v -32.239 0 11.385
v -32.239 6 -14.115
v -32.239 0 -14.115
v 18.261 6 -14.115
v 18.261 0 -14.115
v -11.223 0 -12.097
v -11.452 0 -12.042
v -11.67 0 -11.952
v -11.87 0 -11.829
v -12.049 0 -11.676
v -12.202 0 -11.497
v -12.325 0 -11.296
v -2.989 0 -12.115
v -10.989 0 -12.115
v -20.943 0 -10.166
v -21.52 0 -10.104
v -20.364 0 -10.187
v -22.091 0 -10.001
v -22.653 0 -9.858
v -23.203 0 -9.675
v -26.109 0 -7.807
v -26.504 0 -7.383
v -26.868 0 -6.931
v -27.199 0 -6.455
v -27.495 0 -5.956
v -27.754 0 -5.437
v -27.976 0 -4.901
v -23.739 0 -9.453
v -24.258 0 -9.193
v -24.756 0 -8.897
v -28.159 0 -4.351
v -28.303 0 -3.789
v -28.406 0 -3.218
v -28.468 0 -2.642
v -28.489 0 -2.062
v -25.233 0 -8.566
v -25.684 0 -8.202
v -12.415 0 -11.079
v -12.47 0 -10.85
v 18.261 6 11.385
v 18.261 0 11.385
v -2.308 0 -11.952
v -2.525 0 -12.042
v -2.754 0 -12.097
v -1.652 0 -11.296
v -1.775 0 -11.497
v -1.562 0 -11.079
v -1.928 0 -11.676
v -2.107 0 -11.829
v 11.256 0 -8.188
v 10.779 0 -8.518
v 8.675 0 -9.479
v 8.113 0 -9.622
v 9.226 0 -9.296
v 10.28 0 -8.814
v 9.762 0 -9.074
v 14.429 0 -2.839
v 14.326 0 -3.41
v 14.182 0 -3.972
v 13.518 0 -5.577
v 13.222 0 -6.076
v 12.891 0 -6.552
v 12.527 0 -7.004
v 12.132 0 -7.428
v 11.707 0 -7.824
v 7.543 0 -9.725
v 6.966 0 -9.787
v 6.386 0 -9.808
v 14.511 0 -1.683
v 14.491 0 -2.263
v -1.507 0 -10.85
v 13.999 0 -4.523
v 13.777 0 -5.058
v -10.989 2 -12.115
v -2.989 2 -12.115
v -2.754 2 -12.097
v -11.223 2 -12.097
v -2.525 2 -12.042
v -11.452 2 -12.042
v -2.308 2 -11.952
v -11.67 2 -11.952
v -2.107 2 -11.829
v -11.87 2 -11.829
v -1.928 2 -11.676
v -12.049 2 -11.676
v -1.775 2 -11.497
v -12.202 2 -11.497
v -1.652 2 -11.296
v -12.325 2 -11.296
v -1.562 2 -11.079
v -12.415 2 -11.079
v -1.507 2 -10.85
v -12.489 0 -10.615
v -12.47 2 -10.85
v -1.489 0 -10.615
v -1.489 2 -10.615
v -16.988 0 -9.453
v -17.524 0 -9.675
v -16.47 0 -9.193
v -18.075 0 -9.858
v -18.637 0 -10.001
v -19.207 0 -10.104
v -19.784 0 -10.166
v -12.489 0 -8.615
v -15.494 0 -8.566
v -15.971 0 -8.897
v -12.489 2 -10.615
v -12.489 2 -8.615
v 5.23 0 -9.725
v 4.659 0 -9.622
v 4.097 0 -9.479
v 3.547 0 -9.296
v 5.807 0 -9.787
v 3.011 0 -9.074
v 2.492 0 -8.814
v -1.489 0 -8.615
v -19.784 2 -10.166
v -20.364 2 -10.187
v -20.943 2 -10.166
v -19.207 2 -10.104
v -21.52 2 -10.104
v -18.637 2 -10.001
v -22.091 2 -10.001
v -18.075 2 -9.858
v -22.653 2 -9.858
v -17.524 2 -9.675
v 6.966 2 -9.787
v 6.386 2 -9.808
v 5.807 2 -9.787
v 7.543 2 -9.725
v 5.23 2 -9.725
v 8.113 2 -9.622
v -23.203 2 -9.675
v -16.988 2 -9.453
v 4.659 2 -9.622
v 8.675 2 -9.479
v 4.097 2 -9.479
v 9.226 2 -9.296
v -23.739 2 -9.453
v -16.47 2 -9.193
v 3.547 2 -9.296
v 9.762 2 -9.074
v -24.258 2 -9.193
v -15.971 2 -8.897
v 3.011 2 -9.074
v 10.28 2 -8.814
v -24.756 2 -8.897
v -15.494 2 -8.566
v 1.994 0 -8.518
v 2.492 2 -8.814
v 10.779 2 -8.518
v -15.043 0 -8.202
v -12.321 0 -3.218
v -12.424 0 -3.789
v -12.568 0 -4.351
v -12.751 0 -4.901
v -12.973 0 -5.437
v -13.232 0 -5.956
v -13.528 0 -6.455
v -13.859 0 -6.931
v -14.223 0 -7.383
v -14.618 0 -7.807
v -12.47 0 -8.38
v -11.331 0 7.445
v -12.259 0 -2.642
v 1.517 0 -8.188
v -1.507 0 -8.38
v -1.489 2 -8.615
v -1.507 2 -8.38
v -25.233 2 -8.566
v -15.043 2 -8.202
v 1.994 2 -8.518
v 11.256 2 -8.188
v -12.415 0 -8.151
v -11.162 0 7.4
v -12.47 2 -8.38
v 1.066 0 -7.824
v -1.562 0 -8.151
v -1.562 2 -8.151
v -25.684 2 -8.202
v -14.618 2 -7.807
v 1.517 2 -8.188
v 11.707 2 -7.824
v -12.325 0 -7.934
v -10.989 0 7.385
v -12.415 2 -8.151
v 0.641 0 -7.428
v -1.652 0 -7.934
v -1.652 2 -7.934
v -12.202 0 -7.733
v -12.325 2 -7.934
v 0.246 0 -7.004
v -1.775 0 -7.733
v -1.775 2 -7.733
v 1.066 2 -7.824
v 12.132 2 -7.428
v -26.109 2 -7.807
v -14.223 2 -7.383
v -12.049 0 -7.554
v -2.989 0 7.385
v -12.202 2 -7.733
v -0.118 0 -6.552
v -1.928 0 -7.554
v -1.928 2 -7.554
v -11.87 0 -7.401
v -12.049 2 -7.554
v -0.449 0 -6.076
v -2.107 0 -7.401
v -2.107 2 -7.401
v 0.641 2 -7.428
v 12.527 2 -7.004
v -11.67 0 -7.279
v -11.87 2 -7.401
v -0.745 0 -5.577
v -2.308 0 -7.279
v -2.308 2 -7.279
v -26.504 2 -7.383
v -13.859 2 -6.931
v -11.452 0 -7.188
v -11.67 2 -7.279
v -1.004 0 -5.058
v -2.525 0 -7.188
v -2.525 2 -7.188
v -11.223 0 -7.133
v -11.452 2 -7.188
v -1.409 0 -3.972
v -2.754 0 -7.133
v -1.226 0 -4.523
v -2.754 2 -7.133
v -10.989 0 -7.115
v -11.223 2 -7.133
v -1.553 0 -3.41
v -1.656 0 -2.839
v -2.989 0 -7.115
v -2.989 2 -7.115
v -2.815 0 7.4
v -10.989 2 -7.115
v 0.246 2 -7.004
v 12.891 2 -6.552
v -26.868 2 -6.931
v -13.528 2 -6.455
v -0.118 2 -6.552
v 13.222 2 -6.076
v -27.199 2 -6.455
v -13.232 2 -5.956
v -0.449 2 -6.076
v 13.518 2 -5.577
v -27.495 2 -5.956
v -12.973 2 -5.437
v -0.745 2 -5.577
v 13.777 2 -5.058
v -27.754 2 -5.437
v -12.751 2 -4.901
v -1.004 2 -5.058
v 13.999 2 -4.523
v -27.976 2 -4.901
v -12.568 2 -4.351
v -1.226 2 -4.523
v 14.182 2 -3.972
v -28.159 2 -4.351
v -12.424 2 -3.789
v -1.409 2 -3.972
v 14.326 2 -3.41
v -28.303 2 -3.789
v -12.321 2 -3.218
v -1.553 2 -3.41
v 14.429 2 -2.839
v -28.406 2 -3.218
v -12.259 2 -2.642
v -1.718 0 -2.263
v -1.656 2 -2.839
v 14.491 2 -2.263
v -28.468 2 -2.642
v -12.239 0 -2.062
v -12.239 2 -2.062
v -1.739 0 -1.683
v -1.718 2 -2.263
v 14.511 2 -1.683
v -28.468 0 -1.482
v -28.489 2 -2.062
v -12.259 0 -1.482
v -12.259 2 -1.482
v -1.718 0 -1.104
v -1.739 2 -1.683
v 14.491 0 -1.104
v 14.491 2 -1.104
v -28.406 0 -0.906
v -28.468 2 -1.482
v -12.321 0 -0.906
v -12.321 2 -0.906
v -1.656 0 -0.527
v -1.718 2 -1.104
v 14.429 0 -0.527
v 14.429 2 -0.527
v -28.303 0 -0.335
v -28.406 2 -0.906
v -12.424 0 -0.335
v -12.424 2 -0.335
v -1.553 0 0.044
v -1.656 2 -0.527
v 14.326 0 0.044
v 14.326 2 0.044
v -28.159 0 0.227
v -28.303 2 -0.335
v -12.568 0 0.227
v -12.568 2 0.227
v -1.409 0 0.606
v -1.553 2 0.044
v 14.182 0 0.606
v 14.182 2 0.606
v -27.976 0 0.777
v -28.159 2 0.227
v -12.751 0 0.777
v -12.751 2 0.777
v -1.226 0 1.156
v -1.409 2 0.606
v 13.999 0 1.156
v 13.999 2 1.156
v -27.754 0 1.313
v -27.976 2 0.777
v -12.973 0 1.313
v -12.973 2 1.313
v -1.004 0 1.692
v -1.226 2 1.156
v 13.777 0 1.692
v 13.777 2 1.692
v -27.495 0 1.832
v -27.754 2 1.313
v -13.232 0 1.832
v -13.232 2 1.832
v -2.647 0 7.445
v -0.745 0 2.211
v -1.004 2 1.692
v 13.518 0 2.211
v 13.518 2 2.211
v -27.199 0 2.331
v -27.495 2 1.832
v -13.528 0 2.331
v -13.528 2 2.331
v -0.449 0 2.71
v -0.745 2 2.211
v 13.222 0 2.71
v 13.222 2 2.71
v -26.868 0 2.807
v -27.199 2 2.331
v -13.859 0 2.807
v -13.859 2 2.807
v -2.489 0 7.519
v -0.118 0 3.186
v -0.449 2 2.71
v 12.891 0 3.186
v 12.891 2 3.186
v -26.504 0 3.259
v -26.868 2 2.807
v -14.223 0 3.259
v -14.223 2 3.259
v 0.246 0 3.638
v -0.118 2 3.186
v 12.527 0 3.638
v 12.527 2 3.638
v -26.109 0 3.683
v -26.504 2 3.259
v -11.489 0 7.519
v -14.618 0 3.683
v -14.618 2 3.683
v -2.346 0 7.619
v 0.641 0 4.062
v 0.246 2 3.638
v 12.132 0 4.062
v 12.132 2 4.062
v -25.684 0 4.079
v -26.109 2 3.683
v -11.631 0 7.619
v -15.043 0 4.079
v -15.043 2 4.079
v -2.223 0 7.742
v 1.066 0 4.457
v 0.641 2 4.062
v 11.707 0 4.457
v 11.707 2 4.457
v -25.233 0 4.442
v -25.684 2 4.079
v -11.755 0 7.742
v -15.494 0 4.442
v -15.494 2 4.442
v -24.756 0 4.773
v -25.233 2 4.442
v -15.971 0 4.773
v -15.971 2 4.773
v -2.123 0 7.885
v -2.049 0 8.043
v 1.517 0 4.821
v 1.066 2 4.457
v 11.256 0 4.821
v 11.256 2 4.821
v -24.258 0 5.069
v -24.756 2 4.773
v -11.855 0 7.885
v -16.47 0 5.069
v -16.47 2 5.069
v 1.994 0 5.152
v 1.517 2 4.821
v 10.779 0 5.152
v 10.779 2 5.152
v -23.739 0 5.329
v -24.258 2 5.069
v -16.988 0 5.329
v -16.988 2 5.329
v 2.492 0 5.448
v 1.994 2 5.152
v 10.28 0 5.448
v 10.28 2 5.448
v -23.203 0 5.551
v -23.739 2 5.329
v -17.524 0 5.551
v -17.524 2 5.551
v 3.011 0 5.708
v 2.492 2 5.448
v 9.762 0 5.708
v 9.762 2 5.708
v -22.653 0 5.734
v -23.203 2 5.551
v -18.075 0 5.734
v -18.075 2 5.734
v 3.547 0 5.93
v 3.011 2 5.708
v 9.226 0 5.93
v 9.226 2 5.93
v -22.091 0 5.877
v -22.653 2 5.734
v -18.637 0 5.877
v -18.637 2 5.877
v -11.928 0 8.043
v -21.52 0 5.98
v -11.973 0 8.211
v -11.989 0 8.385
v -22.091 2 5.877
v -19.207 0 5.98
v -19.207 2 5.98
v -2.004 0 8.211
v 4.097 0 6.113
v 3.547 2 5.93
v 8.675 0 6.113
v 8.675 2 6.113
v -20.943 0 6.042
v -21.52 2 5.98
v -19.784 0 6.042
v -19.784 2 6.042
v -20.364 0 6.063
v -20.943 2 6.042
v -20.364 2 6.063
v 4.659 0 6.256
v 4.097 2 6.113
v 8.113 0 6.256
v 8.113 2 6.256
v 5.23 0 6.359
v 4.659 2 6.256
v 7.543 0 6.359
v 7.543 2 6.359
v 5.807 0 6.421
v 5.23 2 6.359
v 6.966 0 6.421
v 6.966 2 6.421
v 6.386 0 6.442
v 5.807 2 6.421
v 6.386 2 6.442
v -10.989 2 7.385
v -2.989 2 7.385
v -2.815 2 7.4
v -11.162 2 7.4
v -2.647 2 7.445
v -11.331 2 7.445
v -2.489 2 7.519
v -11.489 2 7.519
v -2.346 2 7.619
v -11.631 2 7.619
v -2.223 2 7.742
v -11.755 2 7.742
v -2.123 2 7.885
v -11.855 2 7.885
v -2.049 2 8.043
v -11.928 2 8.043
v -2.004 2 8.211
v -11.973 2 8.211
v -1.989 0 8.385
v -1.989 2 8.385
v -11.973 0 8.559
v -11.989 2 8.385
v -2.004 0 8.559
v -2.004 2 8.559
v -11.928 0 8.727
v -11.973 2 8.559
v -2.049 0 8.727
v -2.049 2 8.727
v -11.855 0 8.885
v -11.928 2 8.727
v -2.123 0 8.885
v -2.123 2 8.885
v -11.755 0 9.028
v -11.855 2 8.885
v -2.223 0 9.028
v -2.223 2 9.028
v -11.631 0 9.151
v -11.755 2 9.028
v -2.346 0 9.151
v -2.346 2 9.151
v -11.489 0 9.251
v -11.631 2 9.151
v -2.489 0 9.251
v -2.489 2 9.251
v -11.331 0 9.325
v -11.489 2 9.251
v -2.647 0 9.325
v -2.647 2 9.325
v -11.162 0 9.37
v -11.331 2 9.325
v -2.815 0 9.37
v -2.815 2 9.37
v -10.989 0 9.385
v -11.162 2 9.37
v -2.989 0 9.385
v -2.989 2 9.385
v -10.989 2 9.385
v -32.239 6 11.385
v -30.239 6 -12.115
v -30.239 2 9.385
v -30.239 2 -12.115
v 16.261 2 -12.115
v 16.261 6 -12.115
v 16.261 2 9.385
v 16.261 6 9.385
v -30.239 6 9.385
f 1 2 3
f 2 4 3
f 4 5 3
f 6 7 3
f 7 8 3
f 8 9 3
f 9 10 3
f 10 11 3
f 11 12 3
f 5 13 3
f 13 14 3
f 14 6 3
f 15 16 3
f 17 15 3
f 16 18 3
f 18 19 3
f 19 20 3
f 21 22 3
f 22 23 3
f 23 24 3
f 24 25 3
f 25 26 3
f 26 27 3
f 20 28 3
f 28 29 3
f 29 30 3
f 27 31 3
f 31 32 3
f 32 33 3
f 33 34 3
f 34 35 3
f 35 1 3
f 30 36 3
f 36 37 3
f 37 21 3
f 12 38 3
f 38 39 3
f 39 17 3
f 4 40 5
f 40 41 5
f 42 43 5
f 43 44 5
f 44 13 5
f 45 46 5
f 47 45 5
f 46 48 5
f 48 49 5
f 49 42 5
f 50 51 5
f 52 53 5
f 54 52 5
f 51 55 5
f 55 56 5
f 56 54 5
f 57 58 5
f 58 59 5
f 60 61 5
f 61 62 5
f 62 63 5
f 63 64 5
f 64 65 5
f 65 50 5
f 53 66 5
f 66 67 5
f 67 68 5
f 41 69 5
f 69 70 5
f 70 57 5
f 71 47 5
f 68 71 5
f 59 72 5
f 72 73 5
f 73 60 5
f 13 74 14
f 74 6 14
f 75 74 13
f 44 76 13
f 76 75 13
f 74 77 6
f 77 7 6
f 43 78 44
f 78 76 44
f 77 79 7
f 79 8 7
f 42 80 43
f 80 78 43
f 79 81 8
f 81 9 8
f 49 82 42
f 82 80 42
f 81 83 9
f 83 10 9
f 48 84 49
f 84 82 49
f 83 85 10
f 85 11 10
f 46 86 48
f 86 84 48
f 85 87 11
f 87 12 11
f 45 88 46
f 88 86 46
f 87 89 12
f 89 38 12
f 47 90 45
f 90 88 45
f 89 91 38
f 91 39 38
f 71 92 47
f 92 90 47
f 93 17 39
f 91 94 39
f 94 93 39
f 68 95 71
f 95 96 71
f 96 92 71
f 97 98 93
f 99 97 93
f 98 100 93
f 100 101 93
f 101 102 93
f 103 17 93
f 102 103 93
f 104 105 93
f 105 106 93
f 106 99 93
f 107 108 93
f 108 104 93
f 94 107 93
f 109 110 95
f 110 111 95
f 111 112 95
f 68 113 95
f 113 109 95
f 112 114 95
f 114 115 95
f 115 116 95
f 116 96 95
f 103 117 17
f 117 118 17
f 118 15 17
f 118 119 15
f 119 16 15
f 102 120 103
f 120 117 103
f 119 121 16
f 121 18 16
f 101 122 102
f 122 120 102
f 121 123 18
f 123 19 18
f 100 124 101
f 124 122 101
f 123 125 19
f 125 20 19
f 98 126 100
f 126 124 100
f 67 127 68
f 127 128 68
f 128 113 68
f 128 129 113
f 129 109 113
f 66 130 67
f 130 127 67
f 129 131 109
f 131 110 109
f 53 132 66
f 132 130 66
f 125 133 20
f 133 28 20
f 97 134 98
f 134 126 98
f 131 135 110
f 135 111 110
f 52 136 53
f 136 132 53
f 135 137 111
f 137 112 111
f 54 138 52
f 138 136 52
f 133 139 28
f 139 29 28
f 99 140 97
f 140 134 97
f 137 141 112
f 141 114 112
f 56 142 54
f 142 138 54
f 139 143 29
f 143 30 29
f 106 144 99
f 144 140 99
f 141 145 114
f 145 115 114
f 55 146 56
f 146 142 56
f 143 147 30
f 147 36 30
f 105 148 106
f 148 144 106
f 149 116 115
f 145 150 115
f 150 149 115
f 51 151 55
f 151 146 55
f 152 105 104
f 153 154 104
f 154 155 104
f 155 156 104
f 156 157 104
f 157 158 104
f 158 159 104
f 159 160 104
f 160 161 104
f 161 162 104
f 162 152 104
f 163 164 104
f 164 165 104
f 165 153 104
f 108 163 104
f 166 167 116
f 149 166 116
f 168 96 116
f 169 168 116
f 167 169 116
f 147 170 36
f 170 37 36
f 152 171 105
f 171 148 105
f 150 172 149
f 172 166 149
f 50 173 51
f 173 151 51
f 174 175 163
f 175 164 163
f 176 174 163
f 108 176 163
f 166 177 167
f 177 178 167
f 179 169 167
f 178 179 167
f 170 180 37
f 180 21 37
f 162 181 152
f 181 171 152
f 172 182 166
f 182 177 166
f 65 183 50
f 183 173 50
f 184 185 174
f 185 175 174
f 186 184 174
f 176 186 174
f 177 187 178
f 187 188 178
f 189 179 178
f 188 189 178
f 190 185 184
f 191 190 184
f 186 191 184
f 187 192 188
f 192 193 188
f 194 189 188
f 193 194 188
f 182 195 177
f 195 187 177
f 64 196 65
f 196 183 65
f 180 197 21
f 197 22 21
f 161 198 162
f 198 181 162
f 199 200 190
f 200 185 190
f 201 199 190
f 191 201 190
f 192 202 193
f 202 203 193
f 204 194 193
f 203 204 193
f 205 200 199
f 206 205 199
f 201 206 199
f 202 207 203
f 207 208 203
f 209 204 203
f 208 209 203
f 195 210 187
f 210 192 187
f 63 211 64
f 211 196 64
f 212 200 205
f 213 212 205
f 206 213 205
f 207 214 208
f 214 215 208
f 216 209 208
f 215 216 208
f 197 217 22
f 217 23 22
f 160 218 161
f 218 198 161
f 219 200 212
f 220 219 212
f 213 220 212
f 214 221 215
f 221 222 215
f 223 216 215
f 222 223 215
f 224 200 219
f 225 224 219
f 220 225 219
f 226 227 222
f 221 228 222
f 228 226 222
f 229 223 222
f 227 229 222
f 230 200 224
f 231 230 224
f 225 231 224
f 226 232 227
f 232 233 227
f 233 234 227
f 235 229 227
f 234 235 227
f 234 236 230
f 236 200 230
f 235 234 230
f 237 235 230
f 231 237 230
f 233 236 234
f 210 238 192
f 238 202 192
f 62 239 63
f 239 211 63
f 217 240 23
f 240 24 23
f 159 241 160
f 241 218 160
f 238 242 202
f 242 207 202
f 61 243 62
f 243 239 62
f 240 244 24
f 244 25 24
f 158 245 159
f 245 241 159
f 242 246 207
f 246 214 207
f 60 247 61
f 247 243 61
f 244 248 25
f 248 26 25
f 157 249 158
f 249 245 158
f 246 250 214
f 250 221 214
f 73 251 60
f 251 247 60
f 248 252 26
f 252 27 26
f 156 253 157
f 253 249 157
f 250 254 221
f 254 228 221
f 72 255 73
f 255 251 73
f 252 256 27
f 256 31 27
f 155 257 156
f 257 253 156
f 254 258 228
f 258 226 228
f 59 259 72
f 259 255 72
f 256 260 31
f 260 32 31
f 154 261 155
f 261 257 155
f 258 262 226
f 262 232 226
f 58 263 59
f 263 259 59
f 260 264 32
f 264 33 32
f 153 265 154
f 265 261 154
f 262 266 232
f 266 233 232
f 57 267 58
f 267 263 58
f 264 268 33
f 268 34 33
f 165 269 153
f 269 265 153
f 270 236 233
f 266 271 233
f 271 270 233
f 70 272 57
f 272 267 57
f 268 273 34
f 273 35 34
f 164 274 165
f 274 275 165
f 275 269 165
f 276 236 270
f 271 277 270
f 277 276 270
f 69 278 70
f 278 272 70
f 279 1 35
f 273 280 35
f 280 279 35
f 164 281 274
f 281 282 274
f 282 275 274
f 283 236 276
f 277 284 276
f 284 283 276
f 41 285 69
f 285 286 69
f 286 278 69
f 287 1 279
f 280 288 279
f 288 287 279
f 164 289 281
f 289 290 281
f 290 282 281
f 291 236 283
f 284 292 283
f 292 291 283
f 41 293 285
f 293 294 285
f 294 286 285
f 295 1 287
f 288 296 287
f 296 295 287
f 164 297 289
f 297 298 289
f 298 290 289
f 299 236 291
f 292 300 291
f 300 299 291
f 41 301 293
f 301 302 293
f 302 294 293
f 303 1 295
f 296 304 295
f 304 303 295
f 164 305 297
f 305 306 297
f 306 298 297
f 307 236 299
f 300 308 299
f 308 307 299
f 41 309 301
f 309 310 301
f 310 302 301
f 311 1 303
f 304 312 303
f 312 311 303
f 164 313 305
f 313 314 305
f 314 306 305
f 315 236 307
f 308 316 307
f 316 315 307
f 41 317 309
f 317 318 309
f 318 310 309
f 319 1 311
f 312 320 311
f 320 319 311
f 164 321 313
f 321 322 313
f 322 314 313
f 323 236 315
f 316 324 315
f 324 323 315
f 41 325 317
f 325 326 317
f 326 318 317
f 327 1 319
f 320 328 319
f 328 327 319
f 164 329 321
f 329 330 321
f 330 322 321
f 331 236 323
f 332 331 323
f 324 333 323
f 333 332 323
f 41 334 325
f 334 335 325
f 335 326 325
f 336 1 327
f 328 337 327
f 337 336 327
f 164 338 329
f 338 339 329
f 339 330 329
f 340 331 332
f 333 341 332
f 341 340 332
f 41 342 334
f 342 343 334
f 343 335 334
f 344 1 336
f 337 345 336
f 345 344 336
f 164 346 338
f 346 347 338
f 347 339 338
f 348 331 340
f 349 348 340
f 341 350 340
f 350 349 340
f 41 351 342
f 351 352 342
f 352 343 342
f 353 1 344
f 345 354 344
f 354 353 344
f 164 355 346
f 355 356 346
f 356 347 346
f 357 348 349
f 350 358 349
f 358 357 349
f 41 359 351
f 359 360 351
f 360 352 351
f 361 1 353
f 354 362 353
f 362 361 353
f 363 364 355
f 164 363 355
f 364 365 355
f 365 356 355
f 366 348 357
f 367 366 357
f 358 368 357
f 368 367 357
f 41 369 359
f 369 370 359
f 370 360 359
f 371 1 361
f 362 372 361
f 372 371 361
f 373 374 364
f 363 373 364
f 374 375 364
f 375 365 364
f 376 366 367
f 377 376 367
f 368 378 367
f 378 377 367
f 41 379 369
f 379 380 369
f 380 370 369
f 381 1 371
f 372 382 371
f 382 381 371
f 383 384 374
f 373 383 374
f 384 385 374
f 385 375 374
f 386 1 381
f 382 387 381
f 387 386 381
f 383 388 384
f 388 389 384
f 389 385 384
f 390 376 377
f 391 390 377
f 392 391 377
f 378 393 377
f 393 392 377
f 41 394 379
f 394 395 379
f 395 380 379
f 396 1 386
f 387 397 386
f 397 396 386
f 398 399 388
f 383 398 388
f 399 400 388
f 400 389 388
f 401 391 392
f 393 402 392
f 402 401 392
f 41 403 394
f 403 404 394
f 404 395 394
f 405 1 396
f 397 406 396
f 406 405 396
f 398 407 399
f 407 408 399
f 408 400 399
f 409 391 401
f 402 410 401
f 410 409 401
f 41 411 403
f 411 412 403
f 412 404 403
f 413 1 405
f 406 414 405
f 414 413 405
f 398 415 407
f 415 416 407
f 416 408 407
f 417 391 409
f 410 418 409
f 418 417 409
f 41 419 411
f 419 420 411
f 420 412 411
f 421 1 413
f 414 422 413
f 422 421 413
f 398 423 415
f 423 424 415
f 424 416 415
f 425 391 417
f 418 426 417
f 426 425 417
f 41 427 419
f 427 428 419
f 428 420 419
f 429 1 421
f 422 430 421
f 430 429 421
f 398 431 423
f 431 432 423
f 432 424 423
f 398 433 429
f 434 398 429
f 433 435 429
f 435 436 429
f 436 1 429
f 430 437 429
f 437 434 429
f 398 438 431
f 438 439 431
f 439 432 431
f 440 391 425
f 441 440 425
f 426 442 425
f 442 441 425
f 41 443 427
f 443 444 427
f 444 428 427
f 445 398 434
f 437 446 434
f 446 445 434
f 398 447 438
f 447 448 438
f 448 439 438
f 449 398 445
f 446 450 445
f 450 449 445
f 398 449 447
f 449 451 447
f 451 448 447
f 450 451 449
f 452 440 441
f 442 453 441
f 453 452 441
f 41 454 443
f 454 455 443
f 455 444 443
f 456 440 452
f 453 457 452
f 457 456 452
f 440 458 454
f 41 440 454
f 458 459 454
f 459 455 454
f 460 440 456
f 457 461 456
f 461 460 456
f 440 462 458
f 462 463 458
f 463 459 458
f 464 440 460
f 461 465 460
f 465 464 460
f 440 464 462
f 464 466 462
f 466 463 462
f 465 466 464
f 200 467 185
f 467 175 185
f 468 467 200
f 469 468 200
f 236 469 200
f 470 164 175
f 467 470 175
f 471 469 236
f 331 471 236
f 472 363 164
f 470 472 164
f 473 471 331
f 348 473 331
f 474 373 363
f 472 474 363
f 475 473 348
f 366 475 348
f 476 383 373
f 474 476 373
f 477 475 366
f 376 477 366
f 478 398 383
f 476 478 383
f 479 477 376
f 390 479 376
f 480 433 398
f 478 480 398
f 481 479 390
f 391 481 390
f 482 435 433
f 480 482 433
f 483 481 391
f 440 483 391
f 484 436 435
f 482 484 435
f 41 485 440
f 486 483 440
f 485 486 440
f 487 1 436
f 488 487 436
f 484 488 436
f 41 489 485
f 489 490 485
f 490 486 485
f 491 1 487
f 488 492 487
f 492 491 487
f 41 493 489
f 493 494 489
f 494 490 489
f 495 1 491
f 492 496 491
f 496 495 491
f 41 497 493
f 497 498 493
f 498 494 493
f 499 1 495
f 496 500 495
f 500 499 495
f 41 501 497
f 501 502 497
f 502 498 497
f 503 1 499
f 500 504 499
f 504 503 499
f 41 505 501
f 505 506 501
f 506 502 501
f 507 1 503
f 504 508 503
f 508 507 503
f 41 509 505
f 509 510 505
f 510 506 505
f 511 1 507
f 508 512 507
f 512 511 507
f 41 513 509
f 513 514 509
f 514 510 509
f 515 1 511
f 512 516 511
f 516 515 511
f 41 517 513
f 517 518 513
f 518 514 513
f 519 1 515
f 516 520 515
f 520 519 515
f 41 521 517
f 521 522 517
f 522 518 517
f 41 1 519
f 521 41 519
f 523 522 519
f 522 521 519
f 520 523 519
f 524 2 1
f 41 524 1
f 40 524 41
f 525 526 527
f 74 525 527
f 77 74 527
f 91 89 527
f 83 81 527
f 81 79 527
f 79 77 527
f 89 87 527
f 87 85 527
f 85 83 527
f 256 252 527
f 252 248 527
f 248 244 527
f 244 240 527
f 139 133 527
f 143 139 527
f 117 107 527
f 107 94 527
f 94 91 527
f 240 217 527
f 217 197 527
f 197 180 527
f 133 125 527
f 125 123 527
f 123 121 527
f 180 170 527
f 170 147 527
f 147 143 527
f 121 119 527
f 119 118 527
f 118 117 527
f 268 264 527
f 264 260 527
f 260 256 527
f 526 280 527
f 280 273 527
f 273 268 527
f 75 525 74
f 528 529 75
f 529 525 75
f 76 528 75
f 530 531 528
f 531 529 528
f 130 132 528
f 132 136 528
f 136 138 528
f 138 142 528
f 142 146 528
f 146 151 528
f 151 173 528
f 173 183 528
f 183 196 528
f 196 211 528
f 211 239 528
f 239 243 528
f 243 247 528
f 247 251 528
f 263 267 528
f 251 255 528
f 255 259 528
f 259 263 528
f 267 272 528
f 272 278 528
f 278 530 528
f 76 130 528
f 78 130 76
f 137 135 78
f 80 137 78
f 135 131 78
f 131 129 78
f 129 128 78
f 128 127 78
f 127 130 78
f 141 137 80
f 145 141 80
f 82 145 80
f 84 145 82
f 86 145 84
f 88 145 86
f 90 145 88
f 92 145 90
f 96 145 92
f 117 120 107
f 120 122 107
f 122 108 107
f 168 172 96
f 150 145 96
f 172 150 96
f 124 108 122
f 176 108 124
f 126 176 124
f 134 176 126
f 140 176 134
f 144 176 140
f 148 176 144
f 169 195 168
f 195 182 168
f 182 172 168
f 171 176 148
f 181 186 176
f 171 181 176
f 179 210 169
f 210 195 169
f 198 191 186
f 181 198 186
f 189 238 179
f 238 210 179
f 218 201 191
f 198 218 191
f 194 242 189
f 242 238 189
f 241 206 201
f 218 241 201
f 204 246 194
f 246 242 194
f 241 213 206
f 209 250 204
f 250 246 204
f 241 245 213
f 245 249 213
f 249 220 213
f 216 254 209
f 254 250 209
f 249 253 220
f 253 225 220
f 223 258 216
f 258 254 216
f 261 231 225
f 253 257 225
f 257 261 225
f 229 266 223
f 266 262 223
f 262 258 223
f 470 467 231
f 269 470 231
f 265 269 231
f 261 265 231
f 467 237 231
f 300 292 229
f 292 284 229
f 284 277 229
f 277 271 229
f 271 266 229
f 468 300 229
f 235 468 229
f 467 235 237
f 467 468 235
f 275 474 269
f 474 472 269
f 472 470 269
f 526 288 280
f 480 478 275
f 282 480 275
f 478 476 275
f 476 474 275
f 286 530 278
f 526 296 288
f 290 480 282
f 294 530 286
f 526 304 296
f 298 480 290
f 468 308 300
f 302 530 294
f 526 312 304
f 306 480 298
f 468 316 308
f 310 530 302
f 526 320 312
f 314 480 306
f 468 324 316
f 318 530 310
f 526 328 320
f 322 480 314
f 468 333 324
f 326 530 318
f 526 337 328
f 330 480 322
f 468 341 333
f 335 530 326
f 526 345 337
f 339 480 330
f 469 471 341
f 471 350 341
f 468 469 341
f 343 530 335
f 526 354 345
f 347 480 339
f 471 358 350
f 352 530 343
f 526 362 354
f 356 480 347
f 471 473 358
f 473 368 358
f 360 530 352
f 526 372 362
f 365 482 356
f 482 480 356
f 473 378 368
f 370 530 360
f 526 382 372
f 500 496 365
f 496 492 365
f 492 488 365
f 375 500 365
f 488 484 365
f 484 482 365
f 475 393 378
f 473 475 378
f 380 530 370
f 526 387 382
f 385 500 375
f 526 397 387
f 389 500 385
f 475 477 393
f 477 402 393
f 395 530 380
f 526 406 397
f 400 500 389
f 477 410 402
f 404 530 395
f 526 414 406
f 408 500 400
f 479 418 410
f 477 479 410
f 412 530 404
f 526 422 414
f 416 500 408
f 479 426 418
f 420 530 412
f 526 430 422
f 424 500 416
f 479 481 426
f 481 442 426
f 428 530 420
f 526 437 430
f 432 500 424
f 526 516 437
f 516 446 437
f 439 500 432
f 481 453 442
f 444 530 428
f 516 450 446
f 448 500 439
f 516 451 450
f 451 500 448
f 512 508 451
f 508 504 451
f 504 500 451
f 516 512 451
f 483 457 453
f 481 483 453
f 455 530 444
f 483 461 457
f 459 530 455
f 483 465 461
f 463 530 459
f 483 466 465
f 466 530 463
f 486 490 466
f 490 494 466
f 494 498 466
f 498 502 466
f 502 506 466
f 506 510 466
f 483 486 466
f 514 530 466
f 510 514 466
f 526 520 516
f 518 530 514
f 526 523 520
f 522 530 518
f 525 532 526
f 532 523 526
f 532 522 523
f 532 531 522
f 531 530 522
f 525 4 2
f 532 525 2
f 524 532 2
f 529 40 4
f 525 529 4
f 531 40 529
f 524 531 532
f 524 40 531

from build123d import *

# Parameters (mm, degrees)
SKETCH1_W               = 50.5
SKETCH1_H               = 25.5
BOSS_EXTRUDE1_DEPTH     = 2
MOVE_FACE1_BY           = 5
CUT_EXTRUDE1_DEPTH      = 12
CUT_EXTRUDE1_DEPTH_BACK = 0.0001
SKETCH2_W               = 46.5
SKETCH2_H               = 21.5
SKETCH3_R               = 8.125
CUT_EXTRUDE2_DEPTH      = 10.0001
SKETCH4_W               = 11
SKETCH4_H               = 5
CUT_EXTRUDE3_DEPTH      = 10.0001
FILLET1_R               = 1.5
SKETCH5_W               = 10
SKETCH5_H               = 2
CUT_EXTRUDE4_DEPTH      = 10.0001
FILLET2_R               = 1
MOVE_START              = 6
MOVE_FACE2_OUTLINE_W    = 50.5
MOVE_FACE2_OUTLINE_H    = 25.5
MOVE_FACE2_OUTLINE_W_2  = 46.5
MOVE_FACE2_OUTLINE_H_2  = 21.5
MOVE_FACE2_DEPTH        = 1


# Read off the part's stored shape, not the designer's step: Move Face2
with BuildPart() as part:
    # Sketch1 → Boss-Extrude1 (new body)
    with BuildSketch(Plane(origin=(0, 0, 0), x_dir=(1, 0, 0), z_dir=(0, 1, 0))):
        with Locations((-6.98861547, 1.365023474)):
            Rectangle(SKETCH1_W, SKETCH1_H)
    extrude(amount=BOSS_EXTRUDE1_DEPTH)

    # Move Face1: a face moved outward by 5.0
    extrude(part.faces().sort_by_distance((-6.98861547, 2, -1.365023474))[0], amount=MOVE_FACE1_BY, dir=(0, 1, 0))

    # Sketch2 → Cut-Extrude1 (cut, two sides: drawn at the far end of the back side and taken through both)
    with BuildSketch(Plane(origin=(0, 2, 0), x_dir=(1, 0, 0), z_dir=(0, 1, 0)).offset(-CUT_EXTRUDE1_DEPTH_BACK)):
        with Locations((-6.98861547, 1.365023474)):
            Rectangle(SKETCH2_W, SKETCH2_H)
    extrude(amount=CUT_EXTRUDE1_DEPTH + CUT_EXTRUDE1_DEPTH_BACK, mode=Mode.SUBTRACT)

    # Sketch3 → Cut-Extrude2 (cut)
    with BuildSketch(Plane(origin=(0, 1.9999, 0), x_dir=(1, 0, 0), z_dir=(0, 1, 0))):
        with Locations(Location((-20.36361547, 2.06192688, 0), (0, 0, 270))):
            Circle(SKETCH3_R)
        with Locations(Location((6.38638453, 1.683174436, 0), (0, 0, 270))):
            Circle(SKETCH3_R)
    extrude(amount=-CUT_EXTRUDE2_DEPTH, mode=Mode.SUBTRACT)

    # Sketch4 → Cut-Extrude3 (cut)
    with BuildSketch(Plane(origin=(0, 1.9999, 0), x_dir=(1, 0, 0), z_dir=(0, 1, 0))):
        with Locations((-6.98861547, 9.615023474)):
            Rectangle(SKETCH4_W, SKETCH4_H)
    extrude(amount=-CUT_EXTRUDE3_DEPTH, mode=Mode.SUBTRACT)

    # Fillet1
    fillet1_edges = [part.edges().sort_by_distance(p)[0] for p in [
        (-12.48861547, 0.99995, -7.115023474),
        (-12.48861547, 0.99995, -12.115023474),
        (-1.48861547, 0.99995, -12.115023474),
        (-1.48861547, 0.99995, -7.115023474),
    ]]
    fillet(fillet1_edges, radius=FILLET1_R)

    # Sketch5 → Cut-Extrude4 (cut)
    with BuildSketch(Plane(origin=(0, 1.9999, 0), x_dir=(1, 0, 0), z_dir=(0, 1, 0))):
        with Locations((-6.98861547, -8.384976526)):
            Rectangle(SKETCH5_W, SKETCH5_H)
    extrude(amount=-CUT_EXTRUDE4_DEPTH, mode=Mode.SUBTRACT)

    # Fillet2
    fillet2_edges = [part.edges().sort_by_distance(p)[0] for p in [
        (-1.98861547, 0.99995, 9.384976526),
        (-1.98861547, 0.99995, 7.384976526),
        (-11.98861547, 0.99995, 7.384976526),
        (-11.98861547, 0.99995, 9.384976526),
    ]]
    fillet(fillet2_edges, radius=FILLET2_R - 0.0001)  # a hair under: the kernel refuses the full size

    # Move Face2 outline → Move Face2 (cut)
    with BuildSketch(Plane(origin=(0, 0, 0), x_dir=(1, 0, 0), z_dir=(0, 1, 0)).offset(MOVE_START)):
        with Locations((-6.98861547, 1.365023474)):
            Rectangle(MOVE_FACE2_OUTLINE_W, MOVE_FACE2_OUTLINE_H)
        with Locations((-6.98861547, 1.365023474)):
            Rectangle(MOVE_FACE2_OUTLINE_W_2, MOVE_FACE2_OUTLINE_H_2, mode=Mode.SUBTRACT)
    extrude(amount=MOVE_FACE2_DEPTH, mode=Mode.SUBTRACT)


solid = part.part
